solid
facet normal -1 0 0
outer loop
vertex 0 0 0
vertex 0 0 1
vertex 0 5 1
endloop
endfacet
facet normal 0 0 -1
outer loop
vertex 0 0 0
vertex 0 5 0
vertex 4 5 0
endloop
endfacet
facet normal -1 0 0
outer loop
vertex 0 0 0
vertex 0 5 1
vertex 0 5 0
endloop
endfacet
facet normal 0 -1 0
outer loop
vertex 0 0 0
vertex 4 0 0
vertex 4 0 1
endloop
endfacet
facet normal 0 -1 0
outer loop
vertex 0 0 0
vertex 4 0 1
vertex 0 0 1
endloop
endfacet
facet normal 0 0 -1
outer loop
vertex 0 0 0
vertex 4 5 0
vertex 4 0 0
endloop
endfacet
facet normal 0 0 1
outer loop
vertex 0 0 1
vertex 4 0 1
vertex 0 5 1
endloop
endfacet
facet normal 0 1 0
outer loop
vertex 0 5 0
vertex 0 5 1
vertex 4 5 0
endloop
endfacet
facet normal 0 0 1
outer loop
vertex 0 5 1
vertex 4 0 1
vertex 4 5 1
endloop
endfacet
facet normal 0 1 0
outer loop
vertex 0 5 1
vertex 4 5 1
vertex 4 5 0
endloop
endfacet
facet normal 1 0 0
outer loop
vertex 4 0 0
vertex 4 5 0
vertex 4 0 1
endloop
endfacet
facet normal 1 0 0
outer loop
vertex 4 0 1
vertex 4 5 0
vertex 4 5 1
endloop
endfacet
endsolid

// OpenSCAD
/* Warning, this is a very basic generator with a lot of approximation 
input data : [VQFN, LZC, 4x5x1mm, 28, , A, C04-25398A]
generated by com.zoubworld.electronics.cad.model3d.Basic
Date : Sun Feb 15 10:50:49 CET 2026
*/

//body
color("black")
translate([0,0,0])
cube([4.0,5.0,1.0], center=false);
